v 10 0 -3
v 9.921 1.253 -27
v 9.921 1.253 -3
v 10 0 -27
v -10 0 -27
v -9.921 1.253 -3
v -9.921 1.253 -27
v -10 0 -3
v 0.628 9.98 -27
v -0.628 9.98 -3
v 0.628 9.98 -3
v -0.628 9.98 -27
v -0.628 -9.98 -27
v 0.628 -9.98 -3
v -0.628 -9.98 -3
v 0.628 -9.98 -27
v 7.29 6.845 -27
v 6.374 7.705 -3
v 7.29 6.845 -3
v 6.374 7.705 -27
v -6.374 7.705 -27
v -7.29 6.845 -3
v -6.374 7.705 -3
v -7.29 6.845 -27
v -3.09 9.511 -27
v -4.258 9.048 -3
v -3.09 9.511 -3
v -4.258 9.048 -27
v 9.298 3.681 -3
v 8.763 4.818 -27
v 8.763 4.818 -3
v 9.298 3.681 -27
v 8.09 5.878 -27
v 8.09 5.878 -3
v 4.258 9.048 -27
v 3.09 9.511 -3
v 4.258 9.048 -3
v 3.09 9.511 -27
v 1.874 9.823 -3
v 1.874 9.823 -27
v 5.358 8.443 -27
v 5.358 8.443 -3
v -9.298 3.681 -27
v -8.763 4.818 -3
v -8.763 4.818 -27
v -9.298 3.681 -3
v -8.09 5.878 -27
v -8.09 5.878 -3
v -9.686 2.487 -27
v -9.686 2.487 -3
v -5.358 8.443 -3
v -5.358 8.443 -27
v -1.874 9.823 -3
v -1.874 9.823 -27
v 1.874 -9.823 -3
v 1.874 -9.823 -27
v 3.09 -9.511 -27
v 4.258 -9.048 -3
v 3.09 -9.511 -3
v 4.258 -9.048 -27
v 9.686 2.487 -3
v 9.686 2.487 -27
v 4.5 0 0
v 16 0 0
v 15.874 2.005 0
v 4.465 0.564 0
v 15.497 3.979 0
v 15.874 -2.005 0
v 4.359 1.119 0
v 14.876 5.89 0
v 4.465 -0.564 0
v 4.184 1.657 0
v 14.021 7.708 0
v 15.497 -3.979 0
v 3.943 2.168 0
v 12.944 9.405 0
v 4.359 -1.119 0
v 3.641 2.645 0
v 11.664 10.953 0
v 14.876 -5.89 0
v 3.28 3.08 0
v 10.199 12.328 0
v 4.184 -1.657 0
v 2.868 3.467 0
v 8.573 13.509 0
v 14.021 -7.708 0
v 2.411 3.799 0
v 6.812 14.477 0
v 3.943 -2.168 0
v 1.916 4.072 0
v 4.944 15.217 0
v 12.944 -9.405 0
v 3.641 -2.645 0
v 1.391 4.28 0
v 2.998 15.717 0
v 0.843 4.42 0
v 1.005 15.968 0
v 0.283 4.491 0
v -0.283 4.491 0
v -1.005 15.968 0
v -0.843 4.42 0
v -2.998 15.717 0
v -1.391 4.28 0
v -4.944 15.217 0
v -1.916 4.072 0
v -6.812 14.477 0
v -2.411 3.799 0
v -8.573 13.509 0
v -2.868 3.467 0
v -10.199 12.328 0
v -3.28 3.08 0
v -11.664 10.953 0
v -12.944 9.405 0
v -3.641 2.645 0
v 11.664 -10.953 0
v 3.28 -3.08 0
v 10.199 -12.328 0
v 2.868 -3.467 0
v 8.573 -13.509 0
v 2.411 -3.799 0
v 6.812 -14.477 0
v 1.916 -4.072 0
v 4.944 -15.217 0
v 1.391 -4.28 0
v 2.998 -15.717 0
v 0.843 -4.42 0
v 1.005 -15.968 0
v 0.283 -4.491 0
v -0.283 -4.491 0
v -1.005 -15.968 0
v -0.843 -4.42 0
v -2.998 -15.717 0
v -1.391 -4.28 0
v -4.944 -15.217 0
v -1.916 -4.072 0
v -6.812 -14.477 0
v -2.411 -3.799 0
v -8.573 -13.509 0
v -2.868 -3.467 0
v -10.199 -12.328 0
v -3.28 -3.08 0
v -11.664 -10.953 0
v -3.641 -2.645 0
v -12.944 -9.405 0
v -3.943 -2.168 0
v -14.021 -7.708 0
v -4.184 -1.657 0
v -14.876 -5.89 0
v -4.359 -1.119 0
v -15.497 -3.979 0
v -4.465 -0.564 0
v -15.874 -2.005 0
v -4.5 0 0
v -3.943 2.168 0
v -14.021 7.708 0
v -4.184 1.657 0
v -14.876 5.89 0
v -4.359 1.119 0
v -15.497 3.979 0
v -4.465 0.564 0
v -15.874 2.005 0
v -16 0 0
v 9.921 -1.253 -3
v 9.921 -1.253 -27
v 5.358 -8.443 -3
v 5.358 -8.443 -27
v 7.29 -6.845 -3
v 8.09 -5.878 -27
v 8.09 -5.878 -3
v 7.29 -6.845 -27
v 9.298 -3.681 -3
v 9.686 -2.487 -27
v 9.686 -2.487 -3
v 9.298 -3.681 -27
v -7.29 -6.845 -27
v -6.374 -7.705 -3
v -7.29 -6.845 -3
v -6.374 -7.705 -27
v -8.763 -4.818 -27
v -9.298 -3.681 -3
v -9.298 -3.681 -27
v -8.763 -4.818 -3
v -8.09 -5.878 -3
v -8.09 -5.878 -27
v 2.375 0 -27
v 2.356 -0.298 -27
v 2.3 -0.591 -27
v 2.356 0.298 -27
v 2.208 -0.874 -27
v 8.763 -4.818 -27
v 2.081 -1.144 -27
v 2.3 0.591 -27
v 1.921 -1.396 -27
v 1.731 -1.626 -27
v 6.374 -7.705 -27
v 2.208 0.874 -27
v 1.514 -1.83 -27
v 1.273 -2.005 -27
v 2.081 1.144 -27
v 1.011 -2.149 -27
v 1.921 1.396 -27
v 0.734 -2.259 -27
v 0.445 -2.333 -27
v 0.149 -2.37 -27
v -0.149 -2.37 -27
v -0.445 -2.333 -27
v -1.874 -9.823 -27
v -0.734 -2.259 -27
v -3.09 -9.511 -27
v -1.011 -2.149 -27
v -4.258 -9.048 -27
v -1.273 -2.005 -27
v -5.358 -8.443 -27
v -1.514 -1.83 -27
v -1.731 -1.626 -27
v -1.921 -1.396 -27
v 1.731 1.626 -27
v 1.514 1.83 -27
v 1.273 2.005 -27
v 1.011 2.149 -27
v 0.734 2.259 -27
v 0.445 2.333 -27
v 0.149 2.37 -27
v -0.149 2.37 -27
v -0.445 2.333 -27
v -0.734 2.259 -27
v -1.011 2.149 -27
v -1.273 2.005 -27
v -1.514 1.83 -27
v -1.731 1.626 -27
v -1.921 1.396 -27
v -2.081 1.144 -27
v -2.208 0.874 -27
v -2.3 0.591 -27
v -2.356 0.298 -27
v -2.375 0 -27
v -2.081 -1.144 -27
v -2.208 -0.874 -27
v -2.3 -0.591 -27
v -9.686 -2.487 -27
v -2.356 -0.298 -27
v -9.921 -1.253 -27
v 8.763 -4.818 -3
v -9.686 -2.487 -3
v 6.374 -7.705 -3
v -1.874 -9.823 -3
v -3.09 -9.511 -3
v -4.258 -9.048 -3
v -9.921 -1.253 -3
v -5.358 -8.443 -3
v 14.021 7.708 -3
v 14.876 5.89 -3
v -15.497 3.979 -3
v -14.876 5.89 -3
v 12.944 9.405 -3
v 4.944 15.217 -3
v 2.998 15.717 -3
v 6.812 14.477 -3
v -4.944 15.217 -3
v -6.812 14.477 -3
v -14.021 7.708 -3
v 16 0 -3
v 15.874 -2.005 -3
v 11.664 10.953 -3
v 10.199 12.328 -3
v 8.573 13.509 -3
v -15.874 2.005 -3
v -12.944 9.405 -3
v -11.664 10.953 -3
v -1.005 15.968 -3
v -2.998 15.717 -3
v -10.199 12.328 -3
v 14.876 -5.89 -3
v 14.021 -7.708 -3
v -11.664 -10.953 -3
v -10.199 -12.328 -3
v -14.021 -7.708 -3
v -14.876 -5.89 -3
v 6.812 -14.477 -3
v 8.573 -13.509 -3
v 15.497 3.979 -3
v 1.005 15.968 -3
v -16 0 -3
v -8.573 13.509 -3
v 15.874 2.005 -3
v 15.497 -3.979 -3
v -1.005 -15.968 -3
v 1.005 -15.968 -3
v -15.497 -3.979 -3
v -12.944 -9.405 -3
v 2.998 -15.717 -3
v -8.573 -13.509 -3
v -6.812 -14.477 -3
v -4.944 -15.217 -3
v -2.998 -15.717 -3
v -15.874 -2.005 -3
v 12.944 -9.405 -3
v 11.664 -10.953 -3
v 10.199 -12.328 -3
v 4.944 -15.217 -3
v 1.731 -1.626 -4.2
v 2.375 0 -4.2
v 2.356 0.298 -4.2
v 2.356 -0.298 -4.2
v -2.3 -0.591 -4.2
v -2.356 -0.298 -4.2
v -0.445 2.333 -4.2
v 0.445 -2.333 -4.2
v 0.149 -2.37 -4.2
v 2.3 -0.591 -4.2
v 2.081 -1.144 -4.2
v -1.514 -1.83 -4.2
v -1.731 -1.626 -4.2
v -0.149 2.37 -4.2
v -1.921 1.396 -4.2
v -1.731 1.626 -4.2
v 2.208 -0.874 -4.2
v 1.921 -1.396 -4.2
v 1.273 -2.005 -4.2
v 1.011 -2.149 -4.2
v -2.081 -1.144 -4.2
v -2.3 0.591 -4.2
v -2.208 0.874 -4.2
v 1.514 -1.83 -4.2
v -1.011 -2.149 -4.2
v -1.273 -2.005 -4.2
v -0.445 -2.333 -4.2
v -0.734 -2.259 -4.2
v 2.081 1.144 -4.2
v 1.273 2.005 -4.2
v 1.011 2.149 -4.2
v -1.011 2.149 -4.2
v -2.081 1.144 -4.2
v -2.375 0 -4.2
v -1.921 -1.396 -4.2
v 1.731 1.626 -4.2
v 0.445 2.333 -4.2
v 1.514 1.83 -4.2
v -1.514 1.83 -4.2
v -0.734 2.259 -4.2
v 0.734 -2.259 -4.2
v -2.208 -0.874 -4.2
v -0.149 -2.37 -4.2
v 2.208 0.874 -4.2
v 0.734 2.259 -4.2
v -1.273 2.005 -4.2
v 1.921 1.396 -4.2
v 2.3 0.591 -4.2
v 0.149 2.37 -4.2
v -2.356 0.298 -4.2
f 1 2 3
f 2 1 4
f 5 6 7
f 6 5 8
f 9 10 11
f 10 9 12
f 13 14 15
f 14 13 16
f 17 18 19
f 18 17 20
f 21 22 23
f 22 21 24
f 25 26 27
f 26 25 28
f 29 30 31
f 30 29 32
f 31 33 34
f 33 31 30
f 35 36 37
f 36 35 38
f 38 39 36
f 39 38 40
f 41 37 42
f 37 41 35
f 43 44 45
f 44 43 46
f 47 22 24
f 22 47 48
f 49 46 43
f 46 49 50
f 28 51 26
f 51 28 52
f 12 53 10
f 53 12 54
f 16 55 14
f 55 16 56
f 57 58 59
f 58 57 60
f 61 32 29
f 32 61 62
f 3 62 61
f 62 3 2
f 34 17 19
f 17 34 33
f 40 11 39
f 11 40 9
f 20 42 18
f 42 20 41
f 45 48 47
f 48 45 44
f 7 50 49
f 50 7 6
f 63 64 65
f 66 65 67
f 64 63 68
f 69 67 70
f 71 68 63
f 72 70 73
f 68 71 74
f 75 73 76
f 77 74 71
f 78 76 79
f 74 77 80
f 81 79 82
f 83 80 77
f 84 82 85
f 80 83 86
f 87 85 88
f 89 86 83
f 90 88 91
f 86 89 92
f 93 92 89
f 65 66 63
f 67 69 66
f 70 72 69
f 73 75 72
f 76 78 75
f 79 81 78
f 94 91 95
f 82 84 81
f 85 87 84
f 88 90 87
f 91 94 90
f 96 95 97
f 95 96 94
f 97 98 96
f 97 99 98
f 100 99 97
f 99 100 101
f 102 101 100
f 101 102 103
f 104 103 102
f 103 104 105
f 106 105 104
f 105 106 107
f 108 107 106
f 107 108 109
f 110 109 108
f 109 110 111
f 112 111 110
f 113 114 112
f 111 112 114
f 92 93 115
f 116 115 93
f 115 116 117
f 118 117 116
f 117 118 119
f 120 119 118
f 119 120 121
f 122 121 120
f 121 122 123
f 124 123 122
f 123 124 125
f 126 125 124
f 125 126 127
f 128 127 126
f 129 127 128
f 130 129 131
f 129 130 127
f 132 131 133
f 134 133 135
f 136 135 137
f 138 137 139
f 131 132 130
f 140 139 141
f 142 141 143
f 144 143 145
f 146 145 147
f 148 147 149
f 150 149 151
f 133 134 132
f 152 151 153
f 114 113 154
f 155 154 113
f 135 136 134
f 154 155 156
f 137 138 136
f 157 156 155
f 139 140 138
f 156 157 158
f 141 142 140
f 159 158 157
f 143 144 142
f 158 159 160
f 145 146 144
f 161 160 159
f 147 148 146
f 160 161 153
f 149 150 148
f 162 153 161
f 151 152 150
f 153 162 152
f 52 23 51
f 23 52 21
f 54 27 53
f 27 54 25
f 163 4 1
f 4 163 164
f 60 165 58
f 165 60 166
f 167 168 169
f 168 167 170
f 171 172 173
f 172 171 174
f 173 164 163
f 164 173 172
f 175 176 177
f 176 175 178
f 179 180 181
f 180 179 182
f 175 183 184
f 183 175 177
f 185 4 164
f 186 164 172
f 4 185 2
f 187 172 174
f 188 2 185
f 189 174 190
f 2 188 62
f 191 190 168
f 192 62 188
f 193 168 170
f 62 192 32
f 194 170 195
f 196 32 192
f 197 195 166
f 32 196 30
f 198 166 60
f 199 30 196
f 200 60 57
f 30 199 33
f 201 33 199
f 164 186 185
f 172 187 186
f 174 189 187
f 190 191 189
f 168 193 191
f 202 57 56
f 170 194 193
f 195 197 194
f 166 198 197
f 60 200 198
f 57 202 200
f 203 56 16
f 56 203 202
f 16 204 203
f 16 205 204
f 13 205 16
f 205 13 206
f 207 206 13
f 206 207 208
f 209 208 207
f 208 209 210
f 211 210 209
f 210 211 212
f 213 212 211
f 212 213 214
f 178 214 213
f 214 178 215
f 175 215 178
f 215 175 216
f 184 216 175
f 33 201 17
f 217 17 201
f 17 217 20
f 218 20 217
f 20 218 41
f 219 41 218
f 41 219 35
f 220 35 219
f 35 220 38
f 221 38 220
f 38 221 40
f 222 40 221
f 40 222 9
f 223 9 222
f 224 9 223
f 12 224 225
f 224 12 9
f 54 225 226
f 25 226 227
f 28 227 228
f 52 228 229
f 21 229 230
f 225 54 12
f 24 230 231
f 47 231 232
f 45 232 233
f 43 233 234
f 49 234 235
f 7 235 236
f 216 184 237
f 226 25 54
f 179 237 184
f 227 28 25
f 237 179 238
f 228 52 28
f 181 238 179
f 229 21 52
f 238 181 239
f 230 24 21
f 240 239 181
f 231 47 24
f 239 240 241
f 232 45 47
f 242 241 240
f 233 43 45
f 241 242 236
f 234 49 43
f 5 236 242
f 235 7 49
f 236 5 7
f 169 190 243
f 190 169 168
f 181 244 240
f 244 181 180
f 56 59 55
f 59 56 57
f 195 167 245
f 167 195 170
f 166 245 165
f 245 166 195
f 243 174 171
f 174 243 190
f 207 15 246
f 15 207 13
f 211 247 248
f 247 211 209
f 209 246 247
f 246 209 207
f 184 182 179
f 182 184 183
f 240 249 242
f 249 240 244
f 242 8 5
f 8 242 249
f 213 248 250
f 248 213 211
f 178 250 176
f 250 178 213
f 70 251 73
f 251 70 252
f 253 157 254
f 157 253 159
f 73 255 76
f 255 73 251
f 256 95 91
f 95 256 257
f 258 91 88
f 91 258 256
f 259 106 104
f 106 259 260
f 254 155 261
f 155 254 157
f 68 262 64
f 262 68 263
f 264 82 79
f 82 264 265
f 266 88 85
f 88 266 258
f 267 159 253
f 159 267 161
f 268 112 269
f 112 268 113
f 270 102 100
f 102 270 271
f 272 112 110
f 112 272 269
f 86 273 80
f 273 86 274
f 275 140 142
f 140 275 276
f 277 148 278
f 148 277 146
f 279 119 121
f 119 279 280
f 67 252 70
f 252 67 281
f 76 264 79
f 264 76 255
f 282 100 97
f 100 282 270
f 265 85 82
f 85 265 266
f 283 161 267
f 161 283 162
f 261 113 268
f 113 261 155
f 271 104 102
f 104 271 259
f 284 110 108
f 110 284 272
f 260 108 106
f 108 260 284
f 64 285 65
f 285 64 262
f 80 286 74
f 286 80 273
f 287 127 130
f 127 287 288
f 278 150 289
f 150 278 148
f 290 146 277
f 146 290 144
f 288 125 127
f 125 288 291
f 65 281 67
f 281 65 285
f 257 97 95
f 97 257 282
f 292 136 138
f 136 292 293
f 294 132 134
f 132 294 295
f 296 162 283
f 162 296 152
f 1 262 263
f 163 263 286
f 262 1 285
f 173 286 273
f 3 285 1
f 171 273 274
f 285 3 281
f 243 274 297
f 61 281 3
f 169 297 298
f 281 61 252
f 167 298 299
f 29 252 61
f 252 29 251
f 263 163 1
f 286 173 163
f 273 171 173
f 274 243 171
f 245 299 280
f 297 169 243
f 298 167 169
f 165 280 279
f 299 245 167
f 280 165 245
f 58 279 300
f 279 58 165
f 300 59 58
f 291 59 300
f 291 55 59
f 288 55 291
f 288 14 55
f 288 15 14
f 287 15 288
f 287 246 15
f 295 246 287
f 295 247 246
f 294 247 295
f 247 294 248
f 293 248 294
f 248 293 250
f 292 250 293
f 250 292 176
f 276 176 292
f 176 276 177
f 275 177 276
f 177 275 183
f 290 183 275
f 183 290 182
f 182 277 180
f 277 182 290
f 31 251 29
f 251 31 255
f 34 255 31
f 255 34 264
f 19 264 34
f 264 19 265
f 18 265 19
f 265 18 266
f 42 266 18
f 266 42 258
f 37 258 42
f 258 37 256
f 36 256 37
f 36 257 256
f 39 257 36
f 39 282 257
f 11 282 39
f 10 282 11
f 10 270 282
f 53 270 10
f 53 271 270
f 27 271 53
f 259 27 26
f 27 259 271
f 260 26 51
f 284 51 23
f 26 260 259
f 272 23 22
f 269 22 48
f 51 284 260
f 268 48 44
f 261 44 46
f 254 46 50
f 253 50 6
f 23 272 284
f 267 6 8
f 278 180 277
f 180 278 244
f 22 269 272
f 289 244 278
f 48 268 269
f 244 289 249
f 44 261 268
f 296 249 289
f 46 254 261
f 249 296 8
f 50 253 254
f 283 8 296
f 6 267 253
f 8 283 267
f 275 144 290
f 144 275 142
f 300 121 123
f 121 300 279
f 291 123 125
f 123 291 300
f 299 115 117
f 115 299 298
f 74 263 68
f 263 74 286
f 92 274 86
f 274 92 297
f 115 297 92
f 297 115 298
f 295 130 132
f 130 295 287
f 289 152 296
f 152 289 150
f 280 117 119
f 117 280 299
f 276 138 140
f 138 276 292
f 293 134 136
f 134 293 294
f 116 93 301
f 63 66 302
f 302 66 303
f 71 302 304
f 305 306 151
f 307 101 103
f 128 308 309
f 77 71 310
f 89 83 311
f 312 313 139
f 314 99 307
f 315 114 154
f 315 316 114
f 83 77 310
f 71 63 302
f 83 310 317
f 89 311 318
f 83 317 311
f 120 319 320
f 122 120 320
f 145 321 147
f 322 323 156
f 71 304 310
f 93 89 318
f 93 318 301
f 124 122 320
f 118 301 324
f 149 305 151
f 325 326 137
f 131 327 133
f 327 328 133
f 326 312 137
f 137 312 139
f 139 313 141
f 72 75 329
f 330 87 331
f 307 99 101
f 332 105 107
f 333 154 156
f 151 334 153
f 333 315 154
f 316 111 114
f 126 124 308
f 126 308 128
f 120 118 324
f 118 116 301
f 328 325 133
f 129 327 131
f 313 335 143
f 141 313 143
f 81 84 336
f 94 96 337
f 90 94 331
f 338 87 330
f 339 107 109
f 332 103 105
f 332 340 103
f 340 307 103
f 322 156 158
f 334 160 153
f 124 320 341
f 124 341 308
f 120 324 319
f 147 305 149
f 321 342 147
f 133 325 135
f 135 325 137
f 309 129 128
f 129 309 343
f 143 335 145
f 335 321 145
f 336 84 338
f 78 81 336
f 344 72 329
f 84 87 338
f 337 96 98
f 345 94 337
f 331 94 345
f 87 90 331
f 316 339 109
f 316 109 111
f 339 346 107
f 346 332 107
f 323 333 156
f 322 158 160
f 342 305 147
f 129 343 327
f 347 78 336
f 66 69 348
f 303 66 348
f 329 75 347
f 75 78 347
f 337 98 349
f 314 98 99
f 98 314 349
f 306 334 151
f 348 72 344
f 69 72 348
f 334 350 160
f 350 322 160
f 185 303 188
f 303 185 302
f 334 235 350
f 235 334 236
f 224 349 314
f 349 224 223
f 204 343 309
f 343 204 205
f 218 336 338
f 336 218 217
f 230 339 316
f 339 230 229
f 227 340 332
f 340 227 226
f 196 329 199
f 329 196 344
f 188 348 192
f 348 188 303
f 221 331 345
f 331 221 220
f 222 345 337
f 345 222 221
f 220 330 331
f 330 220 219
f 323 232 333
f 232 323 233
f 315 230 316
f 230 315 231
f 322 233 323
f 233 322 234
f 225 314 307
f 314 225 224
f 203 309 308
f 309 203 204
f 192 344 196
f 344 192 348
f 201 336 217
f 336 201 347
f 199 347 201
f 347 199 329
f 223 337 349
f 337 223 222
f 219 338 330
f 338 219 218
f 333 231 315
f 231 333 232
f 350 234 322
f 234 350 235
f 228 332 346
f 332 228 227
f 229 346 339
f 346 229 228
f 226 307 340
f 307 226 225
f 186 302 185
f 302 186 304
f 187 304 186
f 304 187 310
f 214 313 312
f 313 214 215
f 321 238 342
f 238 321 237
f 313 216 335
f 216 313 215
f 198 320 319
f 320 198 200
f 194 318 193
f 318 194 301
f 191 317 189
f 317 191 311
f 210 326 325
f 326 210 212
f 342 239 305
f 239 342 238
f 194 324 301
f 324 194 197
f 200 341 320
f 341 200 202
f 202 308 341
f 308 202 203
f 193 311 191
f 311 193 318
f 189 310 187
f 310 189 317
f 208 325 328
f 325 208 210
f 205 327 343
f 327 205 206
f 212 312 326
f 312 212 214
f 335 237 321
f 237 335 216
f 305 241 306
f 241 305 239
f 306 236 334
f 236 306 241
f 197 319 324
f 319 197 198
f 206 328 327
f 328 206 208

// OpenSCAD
$fn = 50;


difference() {
	union() {
		translate(v = [0, 0, -27.0000000000]) {
			cylinder(h = 27, r = 10.0000000000);
		}
		translate(v = [0, 0, -3.0000000000]) {
			cylinder(h = 3, r = 16.0000000000);
		}
	}
	union() {
		translate(v = [0, 0, 0]) {
			rotate(a = [0, 0, 0]) {
				difference() {
					union() {
						#translate(v = [0, 0, -27.0000000000]) {
							cylinder(h = 27, r = 2.2500000000);
						}
						#translate(v = [0, 0, -4.2000000000]) {
							cylinder(h = 4.2000000000, r1 = 2.3750000000, r2 = 4.5000000000);
						}
						#translate(v = [0, 0, -27.0000000000]) {
							cylinder(h = 27, r = 2.3750000000);
						}
						#translate(v = [0, 0, -27.0000000000]) {
							cylinder(h = 27, r = 2.2500000000);
						}
					}
					union();
				}
			}
		}
	}
}
